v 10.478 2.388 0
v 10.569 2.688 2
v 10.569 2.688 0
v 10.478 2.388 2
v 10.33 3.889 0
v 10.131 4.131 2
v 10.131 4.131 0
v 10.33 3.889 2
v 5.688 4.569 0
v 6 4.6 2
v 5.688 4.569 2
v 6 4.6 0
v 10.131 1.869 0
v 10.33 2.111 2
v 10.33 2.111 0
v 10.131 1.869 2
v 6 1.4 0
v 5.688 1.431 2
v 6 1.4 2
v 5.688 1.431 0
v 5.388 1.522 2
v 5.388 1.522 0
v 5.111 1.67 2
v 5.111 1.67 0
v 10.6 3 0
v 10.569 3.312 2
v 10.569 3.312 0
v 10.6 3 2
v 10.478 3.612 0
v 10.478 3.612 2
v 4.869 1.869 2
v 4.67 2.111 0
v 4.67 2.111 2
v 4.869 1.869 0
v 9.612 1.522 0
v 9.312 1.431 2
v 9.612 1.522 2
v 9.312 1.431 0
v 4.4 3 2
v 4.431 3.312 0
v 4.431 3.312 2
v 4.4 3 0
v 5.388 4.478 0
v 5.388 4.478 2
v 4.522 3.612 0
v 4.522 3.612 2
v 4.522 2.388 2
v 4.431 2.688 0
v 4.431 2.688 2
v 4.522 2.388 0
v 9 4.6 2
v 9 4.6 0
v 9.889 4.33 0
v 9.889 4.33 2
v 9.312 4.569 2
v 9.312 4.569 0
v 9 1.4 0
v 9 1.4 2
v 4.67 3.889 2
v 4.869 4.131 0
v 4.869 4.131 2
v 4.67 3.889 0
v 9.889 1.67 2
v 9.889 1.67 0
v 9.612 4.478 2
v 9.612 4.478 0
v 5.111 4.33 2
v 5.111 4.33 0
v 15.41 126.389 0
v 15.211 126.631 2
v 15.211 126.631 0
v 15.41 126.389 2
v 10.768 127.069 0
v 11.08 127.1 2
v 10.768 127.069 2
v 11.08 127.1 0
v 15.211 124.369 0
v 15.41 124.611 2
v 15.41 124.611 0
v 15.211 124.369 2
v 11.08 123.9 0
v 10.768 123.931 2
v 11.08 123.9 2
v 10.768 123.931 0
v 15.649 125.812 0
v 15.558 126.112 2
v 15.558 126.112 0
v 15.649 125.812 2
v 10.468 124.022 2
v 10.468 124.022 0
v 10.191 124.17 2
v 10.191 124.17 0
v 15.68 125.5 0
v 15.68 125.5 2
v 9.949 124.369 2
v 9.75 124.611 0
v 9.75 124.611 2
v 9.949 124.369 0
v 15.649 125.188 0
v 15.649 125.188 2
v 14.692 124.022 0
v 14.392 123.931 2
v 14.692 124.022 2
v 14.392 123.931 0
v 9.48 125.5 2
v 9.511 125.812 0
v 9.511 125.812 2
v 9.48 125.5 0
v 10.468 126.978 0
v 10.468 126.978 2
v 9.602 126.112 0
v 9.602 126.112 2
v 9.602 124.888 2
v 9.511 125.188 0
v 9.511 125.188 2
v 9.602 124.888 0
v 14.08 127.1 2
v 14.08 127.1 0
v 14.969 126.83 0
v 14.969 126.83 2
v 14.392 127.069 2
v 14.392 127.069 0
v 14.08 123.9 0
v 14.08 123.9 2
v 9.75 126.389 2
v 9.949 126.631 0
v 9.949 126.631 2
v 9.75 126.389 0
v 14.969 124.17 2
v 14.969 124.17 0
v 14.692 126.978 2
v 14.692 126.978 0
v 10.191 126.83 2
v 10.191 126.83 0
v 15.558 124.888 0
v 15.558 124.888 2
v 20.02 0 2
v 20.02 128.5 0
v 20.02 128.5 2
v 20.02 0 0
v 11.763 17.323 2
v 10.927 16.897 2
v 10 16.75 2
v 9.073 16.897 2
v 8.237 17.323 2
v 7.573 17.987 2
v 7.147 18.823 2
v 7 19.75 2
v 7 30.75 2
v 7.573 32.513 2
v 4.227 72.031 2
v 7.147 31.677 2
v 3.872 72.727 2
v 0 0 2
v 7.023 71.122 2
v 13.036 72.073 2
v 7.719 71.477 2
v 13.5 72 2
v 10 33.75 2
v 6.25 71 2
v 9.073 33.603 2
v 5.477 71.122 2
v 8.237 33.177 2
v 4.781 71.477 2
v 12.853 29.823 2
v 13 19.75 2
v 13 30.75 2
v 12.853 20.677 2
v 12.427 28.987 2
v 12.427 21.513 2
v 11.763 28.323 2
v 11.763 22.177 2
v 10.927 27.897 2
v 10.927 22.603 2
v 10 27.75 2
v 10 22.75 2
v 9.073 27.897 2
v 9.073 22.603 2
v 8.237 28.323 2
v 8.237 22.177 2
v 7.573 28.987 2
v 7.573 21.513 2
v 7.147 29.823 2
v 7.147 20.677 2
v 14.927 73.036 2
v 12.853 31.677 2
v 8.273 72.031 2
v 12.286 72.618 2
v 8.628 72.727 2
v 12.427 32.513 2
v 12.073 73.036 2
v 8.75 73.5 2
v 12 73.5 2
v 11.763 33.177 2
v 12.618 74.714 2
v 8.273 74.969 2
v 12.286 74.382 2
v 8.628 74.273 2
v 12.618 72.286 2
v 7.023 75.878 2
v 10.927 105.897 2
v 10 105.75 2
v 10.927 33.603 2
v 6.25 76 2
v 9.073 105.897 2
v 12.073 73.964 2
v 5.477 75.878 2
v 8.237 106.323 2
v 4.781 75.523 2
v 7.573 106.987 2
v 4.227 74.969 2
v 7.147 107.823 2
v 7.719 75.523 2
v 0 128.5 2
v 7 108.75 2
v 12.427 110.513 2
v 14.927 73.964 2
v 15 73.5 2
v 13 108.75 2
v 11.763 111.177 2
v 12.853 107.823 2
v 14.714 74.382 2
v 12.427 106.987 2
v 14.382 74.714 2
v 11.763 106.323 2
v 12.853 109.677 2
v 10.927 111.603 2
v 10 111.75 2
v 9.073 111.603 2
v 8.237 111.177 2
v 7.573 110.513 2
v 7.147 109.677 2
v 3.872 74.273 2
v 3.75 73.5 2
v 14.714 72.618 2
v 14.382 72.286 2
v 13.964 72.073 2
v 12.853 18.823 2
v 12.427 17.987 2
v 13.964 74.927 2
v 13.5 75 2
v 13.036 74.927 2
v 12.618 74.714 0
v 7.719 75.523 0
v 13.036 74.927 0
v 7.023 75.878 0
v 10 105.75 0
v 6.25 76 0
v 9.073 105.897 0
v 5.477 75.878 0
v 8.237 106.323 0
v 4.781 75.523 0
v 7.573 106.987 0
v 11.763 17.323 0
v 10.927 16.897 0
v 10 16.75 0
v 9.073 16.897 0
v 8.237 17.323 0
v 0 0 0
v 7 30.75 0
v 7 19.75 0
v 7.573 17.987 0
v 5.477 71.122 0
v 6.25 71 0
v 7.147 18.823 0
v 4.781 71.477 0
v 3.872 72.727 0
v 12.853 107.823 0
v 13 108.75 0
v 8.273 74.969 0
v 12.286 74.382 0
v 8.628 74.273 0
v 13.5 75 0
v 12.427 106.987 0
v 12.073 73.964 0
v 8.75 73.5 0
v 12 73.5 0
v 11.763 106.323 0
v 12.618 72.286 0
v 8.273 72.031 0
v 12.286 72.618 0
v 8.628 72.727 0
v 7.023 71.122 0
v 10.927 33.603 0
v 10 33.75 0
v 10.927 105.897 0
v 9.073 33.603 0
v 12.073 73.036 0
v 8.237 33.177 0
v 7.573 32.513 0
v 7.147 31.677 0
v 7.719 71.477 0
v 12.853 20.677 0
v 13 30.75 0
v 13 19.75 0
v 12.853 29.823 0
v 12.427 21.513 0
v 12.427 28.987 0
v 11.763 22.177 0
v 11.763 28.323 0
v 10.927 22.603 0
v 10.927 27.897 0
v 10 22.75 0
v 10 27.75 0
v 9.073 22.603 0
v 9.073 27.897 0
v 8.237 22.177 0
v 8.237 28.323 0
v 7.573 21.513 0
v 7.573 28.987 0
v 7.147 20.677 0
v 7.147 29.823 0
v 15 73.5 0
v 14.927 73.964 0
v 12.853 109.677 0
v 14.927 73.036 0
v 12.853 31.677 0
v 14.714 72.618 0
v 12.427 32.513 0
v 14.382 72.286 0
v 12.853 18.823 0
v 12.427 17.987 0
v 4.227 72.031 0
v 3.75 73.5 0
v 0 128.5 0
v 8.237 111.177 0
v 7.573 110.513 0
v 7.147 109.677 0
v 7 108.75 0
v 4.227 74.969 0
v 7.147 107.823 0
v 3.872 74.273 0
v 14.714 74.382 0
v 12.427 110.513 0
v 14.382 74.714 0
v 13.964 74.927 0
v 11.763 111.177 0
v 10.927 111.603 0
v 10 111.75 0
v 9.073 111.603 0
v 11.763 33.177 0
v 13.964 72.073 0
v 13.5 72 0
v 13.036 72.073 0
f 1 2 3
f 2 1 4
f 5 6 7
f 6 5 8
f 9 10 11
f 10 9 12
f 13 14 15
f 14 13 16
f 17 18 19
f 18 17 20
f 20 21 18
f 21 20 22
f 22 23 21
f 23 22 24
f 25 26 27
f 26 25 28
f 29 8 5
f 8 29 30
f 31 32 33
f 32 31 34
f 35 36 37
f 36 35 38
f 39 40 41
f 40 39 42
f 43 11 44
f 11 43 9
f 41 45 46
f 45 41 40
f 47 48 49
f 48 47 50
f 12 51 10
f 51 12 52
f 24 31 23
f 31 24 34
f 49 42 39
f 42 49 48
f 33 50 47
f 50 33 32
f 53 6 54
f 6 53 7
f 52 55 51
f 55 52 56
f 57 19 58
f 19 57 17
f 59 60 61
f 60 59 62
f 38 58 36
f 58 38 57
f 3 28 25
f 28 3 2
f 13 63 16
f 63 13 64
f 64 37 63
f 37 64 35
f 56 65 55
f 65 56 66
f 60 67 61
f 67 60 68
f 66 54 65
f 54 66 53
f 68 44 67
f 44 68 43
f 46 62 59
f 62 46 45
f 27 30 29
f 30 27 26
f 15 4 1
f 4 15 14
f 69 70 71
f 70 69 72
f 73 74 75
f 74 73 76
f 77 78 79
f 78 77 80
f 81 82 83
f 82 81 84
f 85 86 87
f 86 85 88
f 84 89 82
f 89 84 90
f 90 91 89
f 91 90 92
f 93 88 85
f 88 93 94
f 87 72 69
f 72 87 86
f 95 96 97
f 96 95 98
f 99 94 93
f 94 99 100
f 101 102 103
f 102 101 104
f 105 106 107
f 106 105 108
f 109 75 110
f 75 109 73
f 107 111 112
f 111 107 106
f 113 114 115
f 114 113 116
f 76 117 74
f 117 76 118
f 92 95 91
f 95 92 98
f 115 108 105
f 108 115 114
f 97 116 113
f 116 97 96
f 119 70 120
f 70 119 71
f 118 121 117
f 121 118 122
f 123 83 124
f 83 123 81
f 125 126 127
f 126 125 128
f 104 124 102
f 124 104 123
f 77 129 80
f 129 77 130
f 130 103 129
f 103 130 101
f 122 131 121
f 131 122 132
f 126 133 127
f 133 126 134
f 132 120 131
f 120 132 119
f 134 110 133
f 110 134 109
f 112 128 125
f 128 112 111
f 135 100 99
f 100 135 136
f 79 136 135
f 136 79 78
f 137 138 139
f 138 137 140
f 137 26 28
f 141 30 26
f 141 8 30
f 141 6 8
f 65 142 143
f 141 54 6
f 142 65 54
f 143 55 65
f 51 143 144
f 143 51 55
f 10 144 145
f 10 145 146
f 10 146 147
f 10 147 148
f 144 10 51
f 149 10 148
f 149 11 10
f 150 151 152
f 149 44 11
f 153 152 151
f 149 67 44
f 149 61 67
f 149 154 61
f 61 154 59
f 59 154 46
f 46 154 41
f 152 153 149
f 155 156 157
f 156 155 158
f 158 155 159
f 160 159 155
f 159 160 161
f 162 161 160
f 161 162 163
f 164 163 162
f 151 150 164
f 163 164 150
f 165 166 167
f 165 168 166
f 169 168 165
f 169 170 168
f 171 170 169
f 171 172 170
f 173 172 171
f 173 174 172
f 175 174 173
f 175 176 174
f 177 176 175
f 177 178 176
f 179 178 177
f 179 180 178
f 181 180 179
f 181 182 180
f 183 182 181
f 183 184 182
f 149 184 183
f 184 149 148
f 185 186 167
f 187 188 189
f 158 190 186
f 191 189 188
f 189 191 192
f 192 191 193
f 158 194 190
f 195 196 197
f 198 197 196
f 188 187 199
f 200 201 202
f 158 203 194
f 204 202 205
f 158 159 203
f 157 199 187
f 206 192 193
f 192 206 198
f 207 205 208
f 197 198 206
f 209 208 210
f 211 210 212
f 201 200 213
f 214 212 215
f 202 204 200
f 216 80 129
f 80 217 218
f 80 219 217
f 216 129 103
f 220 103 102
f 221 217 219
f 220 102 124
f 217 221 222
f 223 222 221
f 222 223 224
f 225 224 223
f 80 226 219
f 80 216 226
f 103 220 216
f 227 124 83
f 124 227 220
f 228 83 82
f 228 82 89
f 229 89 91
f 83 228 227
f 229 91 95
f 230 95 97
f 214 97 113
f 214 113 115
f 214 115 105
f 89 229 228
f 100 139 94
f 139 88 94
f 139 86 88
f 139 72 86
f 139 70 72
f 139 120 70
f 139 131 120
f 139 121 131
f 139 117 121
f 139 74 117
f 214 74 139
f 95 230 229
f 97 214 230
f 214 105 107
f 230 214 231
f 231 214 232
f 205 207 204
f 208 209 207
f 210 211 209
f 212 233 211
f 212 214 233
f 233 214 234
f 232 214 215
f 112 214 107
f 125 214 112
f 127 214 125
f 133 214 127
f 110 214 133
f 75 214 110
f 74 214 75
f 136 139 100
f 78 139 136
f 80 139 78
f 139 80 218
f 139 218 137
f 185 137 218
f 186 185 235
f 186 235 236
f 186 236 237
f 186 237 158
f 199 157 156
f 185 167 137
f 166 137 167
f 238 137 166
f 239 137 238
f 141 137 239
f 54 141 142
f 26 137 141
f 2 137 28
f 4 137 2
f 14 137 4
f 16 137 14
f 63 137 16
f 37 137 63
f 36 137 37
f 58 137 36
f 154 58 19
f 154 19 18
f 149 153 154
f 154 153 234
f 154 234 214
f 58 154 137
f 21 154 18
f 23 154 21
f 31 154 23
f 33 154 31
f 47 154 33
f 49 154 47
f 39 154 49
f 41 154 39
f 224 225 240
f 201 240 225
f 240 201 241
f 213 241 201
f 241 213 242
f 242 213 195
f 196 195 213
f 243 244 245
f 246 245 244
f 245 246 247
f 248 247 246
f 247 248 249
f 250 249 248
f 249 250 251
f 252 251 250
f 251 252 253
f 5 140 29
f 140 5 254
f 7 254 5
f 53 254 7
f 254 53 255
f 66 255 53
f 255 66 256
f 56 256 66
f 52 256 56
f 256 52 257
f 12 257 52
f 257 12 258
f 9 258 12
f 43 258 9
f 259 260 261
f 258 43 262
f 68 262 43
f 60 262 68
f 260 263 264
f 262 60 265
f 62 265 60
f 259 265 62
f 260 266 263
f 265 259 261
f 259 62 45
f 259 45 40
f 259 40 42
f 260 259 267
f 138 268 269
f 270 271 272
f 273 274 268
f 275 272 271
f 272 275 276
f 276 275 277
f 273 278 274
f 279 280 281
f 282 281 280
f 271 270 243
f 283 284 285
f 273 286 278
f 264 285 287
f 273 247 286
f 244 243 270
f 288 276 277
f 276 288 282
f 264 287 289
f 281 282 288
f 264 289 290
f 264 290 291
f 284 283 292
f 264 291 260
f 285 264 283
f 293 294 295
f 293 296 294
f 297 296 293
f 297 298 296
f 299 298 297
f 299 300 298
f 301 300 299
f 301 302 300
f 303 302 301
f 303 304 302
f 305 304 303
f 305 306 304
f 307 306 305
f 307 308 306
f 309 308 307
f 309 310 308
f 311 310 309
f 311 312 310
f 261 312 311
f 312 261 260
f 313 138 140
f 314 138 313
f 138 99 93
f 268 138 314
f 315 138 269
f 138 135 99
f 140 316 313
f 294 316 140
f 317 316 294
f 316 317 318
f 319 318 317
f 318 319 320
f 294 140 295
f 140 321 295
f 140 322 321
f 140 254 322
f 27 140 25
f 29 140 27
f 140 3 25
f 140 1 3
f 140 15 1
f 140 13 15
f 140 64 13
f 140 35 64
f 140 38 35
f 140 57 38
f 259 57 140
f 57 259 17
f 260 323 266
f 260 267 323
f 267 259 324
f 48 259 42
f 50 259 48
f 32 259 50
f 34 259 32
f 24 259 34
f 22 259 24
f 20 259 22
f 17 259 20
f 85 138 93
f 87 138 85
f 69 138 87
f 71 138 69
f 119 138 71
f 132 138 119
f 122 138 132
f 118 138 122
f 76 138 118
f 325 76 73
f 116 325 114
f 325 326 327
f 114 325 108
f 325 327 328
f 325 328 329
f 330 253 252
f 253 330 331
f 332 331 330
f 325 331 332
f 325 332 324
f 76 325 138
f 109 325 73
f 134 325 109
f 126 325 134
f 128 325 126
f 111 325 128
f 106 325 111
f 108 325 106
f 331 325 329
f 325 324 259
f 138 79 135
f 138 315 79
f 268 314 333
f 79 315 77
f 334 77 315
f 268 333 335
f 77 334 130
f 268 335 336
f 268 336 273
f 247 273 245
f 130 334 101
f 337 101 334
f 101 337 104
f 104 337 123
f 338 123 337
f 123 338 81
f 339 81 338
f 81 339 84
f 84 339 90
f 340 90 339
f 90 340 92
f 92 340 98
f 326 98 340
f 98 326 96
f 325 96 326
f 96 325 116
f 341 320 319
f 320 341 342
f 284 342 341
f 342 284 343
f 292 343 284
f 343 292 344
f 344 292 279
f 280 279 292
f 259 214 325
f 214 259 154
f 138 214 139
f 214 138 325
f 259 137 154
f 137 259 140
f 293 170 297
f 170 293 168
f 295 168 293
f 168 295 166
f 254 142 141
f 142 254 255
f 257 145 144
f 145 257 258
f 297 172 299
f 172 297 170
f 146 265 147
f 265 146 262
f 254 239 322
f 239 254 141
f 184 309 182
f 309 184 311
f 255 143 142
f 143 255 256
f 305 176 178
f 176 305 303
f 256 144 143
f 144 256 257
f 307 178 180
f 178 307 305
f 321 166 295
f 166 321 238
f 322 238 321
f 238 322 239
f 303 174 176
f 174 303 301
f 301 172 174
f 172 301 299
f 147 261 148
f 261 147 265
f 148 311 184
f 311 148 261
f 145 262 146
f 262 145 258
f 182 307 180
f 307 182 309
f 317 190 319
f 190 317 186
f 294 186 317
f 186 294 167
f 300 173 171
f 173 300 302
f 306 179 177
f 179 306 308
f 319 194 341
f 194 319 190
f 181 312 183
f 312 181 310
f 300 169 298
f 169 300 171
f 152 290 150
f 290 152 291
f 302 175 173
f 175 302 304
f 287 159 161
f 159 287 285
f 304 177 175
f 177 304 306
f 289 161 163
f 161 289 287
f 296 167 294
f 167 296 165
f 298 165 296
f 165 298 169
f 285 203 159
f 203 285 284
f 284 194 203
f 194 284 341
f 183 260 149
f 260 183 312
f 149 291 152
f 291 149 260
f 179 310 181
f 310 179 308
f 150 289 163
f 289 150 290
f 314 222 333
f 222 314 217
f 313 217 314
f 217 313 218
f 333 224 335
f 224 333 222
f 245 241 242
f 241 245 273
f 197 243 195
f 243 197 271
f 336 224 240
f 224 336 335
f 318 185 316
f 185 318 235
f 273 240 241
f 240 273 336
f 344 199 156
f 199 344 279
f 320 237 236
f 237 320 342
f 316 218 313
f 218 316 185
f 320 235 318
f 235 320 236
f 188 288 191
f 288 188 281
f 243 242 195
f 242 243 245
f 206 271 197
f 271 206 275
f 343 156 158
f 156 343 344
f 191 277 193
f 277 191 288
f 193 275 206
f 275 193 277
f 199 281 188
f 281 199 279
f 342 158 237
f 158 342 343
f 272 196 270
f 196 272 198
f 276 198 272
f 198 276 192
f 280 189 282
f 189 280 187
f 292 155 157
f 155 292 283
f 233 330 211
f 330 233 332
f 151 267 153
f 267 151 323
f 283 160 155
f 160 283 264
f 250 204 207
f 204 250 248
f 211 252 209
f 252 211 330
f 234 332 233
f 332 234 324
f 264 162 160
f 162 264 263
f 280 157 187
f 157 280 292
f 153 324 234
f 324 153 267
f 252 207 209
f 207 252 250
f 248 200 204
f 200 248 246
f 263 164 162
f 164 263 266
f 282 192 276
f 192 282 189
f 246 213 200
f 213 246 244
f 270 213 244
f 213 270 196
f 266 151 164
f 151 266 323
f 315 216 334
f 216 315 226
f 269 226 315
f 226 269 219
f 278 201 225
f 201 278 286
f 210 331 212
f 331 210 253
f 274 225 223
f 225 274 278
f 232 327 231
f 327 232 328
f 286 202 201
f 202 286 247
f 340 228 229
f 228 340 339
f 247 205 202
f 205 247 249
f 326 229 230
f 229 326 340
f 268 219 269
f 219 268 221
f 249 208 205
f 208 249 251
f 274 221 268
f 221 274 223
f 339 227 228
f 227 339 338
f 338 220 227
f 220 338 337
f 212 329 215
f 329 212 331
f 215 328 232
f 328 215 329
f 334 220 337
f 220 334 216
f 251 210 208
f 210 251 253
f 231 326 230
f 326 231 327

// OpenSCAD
// file: eurorack.scad
panelHeight = 128.5;
thickness = 2;
mountHoleOffset=7.5;
mountHoleGap=5.08;
mountHoleDiameter = 3.0;
jackHoleDiameter = 6;
ledHoleDiameter = 5;
pushButtonHoleDiameter = 7;
potHoleDiameter = 6;
switchHoleDiameter = 6;
rotarySwitchHoleDiameter = 9.1;
microSwitchHoleDiameter=3;


function hp(x) = x * 5.08 - 0.3;


// Eurorack mounting hole.
//   x, y      : hole center position (panel coordinates)
//   d         : hole diameter (3.2 default = M3 clearance, slightly oversize)
//   slot      : horizontal slot length for tolerance (0 = plain round hole)
//   depth     : cut depth; leave default to punch fully through any panel thickness
module euroRackMountHole(x, y, d = 3.2, slot = 1, depth = 100) {
    translate([x, y, -depth/2])
        hull() {
            // two cylinders spaced by `slot` make an obround (stadium) slot;
            // slot = 0 collapses to a single round hole
            for (dx = [-slot/2, slot/2])
                translate([dx, 0, 0])
                    cylinder(h = depth, d = d, $fn = 32);
        }
}

module euroRackMountHoles(n_top, n_bot) {
   euroRackMountHole(mountHoleOffset + n_top*mountHoleGap, 3, slot=3);
   euroRackMountHole(mountHoleOffset + n_bot*mountHoleGap, panelHeight-3, slot=3);
}

module punchHole(x, y, holeSize,chamfer=false){
  translate([x, y, -1]){
    cylinder(r=holeSize/2, h=thickness+2, $fn=20);
    if(chamfer) {
      translate([0, 0, 0.5]){
        cylinder(r2=holeSize, r1=0, h=holeSize+0.5, $fn=20);
      }
    }
  }
}

module led(x, y) {
    punchHole(x, y, ledHoleDiameter);
}
module microswitch(x, y) {
    punchHole(x, y, microSwitchHoleDiameter);
}
module switch(x, y) { 
    punchHole(x, y, switchHoleDiameter);
}
module pushButton(x, y) { 
    punchHole(x, y, pushButtonHoleDiameter);
}
module rotarySwitch(x, y) { 
    punchHole(x, y, rotarySwitchHoleDiameter);
}
module sevenSegmentDisplay(x, y) {
    translate([x-6.5, y-9.6, -1]){
        cube([13, 19.2, thickness+2]);
    }
}

module pot(x, y) {
  punchHole(x, y, potHoleDiameter);
}

module jack(x, y){
  punchHole(x, y, jackHoleDiameter);
}

module panel(width) {
   cube([width, panelHeight, thickness]);
}
// main file
include <eurorack.scad>

width = hp(4);
n_top = 0;
n_bot = 1;

 difference() {
     panel(width);
     
     euroRackMountHoles(n_top, n_bot);
       
     jack(10, 19.75);
     jack(10, 30.75);
     
     microswitch(13.5, 73.5);
     led((8.5+4)/2, 73.5);
     
     
     jack(10, 108.75);
     
     
 }
